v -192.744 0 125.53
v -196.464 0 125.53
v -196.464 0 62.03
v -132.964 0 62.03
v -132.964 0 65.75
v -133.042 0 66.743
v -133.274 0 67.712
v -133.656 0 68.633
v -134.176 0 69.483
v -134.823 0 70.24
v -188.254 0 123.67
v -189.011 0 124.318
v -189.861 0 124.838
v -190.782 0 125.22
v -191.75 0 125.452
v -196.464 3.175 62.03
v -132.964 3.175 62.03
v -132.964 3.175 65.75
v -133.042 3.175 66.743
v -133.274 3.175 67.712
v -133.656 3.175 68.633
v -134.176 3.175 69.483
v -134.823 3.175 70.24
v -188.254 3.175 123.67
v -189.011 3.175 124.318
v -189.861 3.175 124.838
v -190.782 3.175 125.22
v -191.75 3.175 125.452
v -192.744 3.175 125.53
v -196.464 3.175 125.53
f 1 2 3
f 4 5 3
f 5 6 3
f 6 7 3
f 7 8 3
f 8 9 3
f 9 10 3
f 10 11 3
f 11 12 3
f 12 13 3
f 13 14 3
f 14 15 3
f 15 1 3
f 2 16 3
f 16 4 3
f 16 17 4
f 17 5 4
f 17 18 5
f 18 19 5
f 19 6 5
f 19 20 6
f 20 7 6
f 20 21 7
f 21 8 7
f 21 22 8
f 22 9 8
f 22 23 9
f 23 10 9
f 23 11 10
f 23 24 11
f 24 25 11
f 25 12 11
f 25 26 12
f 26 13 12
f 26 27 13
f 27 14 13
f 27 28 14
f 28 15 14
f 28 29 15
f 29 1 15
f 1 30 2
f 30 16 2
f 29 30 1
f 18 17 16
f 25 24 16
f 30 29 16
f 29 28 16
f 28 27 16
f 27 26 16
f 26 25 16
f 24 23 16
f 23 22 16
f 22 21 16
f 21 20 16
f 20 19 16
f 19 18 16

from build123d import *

# Parameters (mm, degrees)
SKETCH2_W                      = 304.8
SKETCH2_H                      = 304.8
BOSS_EXTRUDE1_DEPTH            = 3.175
CUT_EXTRUDE1_DEPTH             = 348.408852067
CUT_EXTRUDE1_DEPTH_BACK        = 348.408852067
SKETCH3_W                      = 304.8
SKETCH3_H                      = 304.8
SKETCH3_R                      = 12.7
SKETCH3_R_2                    = 8.89
BODY_DELETE_KEEP_1_OUTLINE_R   = 12.7
BODY_DELETE_KEEP_1_OUTLINE_R_2 = 8.89
BODY_DELETE_KEEP_1_DEPTH       = 3.175


# Read off the part's stored shape, not the designer's step: Body-Delete/Keep 1
with BuildPart() as part:
    # Sketch2 → Boss-Extrude1 (new body)
    with BuildSketch(Plane(origin=(0, 0, 0), x_dir=(1, 0, 0), z_dir=(0, 1, 0))):
        with Locations((-56.763509666, -124.968808797)):
            Rectangle(SKETCH2_W, SKETCH2_H)
    extrude(amount=BOSS_EXTRUDE1_DEPTH)

    # Sketch3 → Cut-Extrude1 (cut, two sides: drawn at the far end of the back side and taken through both)
    # profile 1 of 3: a face of its own
    with BuildSketch(Plane(origin=(0, 3.175, 0), x_dir=(1, 0, 0), z_dir=(0, 1, 0)).offset(-CUT_EXTRUDE1_DEPTH_BACK)):
        with Locations((-56.763509666, -124.968808797)):
            Rectangle(SKETCH3_W, SKETCH3_H)
        Polygon((-188.253637726, -268.695366412), (-192.063637726, -268.695366412), (-192.063637726, -265.393366412), (-198.413637726, -265.393366412), (-188.253637726, -205.195366412), align=None, mode=Mode.SUBTRACT)
        Polygon((-185.713637726, -265.393366412), (-175.553637726, -205.195366412), (-175.553637726, -268.695366412), (-179.363637726, -268.695366412), (-179.363637726, -265.393366412), align=None, mode=Mode.SUBTRACT)
        Polygon((-162.853637726, -268.695366412), (-166.663637726, -268.695366412), (-166.663637726, -265.393366412), (-173.013637726, -265.393366412), (-162.853637726, -205.195366412), align=None, mode=Mode.SUBTRACT)
        Polygon((-150.153637726, -268.695366412), (-153.963637726, -268.695366412), (-153.963637726, -265.393366412), (-160.313637726, -265.393366412), (-150.153637726, -205.195366412), align=None, mode=Mode.SUBTRACT)
        Polygon((-147.613637726, -265.393366412), (-137.453637726, -205.195366412), (-137.453637726, -268.695366412), (-141.263637726, -268.695366412), (-141.263637726, -265.393366412), align=None, mode=Mode.SUBTRACT)
        Polygon((-128.563637726, -265.393366412), (-134.913637726, -265.393366412), (-124.753637726, -205.195366412), (-124.753637726, -268.695366412), (-128.563637726, -268.695366412), align=None, mode=Mode.SUBTRACT)
        Polygon((-122.213637726, -265.393366412), (-112.053637726, -205.195366412), (-112.053637726, -268.695366412), (-115.863637726, -268.695366412), (-115.863637726, -265.393366412), align=None, mode=Mode.SUBTRACT)
        Polygon((-99.353637726, -268.695366412), (-103.163637726, -268.695366412), (-103.163637726, -265.393366412), (-109.513637726, -265.393366412), (-99.353637726, -205.195366412), align=None, mode=Mode.SUBTRACT)
        Polygon((-90.463637726, -268.695366412), (-90.463637726, -265.393366412), (-96.813637726, -265.393366412), (-86.653637726, -205.195366412), (-86.653637726, -268.695366412), align=None, mode=Mode.SUBTRACT)
        Polygon((-84.113637726, -265.393366412), (-73.953637726, -205.195366412), (-73.953637726, -268.695366412), (-77.763637726, -268.695366412), (-77.763637726, -265.393366412), align=None, mode=Mode.SUBTRACT)
        Polygon((-71.413637726, -265.393366412), (-61.253637726, -205.195366412), (-61.253637726, -268.695366412), (-65.063637726, -268.695366412), (-65.063637726, -265.393366412), align=None, mode=Mode.SUBTRACT)
        with BuildLine():
            ThreePointArc((-132.963509666, -135.600090559), (-133.446874634, -138.030130355), (-134.823381605, -140.09021862))
            Line((-134.823381605, -140.09021862), (-188.253637726, -193.520474741))
            ThreePointArc((-188.253637726, -193.520474741), (-190.313725991, -194.896981712), (-192.743765787, -195.38034668))
            Line((-192.743765787, -195.38034668), (-196.463509666, -195.38034668))
            Line((-196.463509666, -195.38034668), (-196.463509666, -131.88034668))
            Line((-196.463509666, -131.88034668), (-132.963509666, -131.88034668))
            Line((-132.963509666, -131.88034668), (-132.963509666, -135.600090559))
        make_face(mode=Mode.SUBTRACT)
        with BuildLine():
            Line((-126.613509666, -195.38034668), (-126.613509666, -131.88034668))
            Line((-126.613509666, -131.88034668), (-63.113509666, -131.88034668))
            Line((-63.113509666, -131.88034668), (-63.113509666, -135.600090559))
            ThreePointArc((-63.113509666, -135.600090559), (-63.596874634, -138.030130355), (-64.973381605, -140.09021862))
            Line((-64.973381605, -140.09021862), (-118.403637726, -193.520474741))
            ThreePointArc((-118.403637726, -193.520474741), (-120.463725991, -194.896981712), (-122.893765787, -195.38034668))
            Line((-122.893765787, -195.38034668), (-126.613509666, -195.38034668))
        make_face(mode=Mode.SUBTRACT)
        Polygon((-52.363637726, -268.695366412), (-52.363637726, -265.393366412), (-58.713637726, -265.393366412), (-48.553637726, -205.195366412), (-48.553637726, -268.695366412), align=None, mode=Mode.SUBTRACT)
        Polygon((-35.853637726, -205.195366412), (-35.853637726, -268.695366412), (-39.663637726, -268.695366412), (-39.663637726, -265.393366412), (-46.013637726, -265.393366412), align=None, mode=Mode.SUBTRACT)
        Polygon((-23.153637726, -205.195366412), (-23.153637726, -268.695366412), (-26.963637726, -268.695366412), (-26.963637726, -265.393366412), (-33.313637726, -265.393366412), align=None, mode=Mode.SUBTRACT)
        Polygon((-20.613637726, -265.393366412), (-10.453637726, -205.195366412), (-10.453637726, -268.695366412), (-14.263637726, -268.695366412), (-14.263637726, -265.393366412), align=None, mode=Mode.SUBTRACT)
        Polygon((-1.563637726, -268.695366412), (-1.563637726, -265.393366412), (-7.913637726, -265.393366412), (2.246362274, -205.195366412), (2.246362274, -268.695366412), align=None, mode=Mode.SUBTRACT)
        with BuildLine():
            Line((-53.043765787, -195.38034668), (-56.763509666, -195.38034668))
            Line((-56.763509666, -195.38034668), (-56.763509666, -131.88034668))
            Line((-56.763509666, -131.88034668), (6.736490334, -131.88034668))
            Line((6.736490334, -131.88034668), (6.736490334, -135.600090559))
            ThreePointArc((6.736490334, -135.600090559), (6.253125366, -138.030130355), (4.876618395, -140.09021862))
            Line((4.876618395, -140.09021862), (-48.553637726, -193.520474741))
            ThreePointArc((-48.553637726, -193.520474741), (-50.613725991, -194.896981712), (-53.043765787, -195.38034668))
        make_face(mode=Mode.SUBTRACT)
        with BuildLine():
            Line((13.086490334, -131.88034668), (76.586490334, -131.88034668))
            Line((76.586490334, -131.88034668), (76.586490334, -135.600090559))
            ThreePointArc((76.586490334, -135.600090559), (76.103125366, -138.030130355), (74.726618395, -140.09021862))
            Line((74.726618395, -140.09021862), (21.296362274, -193.520474741))
            ThreePointArc((21.296362274, -193.520474741), (19.236274009, -194.896981712), (16.806234213, -195.38034668))
            Line((16.806234213, -195.38034668), (13.086490334, -195.38034668))
            Line((13.086490334, -195.38034668), (13.086490334, -131.88034668))
        make_face(mode=Mode.SUBTRACT)
        with BuildLine():
            Line((-196.463509666, -125.53034668), (-196.463509666, -62.03034668))
            Line((-196.463509666, -62.03034668), (-132.963509666, -62.03034668))
            Line((-132.963509666, -62.03034668), (-132.963509666, -65.750090559))
            ThreePointArc((-132.963509666, -65.750090559), (-133.10773728, -67.095783354), (-133.533868437, -68.38034668))
            ThreePointArc((-133.533868437, -68.38034668), (-134.095097913, -69.368194866), (-134.823381605, -70.24021862))
            Line((-134.823381605, -70.24021862), (-188.253637726, -123.670474741))
            ThreePointArc((-188.253637726, -123.670474741), (-189.12566148, -124.398758433), (-190.113509666, -124.959987909))
            ThreePointArc((-190.113509666, -124.959987909), (-191.398072992, -125.386119066), (-192.743765787, -125.53034668))
            Line((-192.743765787, -125.53034668), (-196.463509666, -125.53034668))
        make_face(mode=Mode.SUBTRACT)
        with BuildLine():
            Line((-122.893765787, -125.53034668), (-126.613509666, -125.53034668))
            Line((-126.613509666, -125.53034668), (-126.613509666, -62.03034668))
            Line((-126.613509666, -62.03034668), (-63.113509666, -62.03034668))
            Line((-63.113509666, -62.03034668), (-63.113509666, -65.750090559))
            ThreePointArc((-63.113509666, -65.750090559), (-63.596874634, -68.180130355), (-64.973381605, -70.24021862))
            Line((-64.973381605, -70.24021862), (-118.403637726, -123.670474741))
            ThreePointArc((-118.403637726, -123.670474741), (-120.463725991, -125.046981712), (-122.893765787, -125.53034668))
        make_face(mode=Mode.SUBTRACT)
        Polygon((-196.463509666, -48.768808797), (-196.463509666, 14.731191203), (-192.653509666, 14.731191203), (-192.653509666, 11.429191203), (-186.303509666, 11.429191203), align=None, mode=Mode.SUBTRACT)
        Polygon((-183.763509666, 14.731191203), (-179.953509666, 14.731191203), (-179.953509666, 11.429191203), (-173.603509666, 11.429191203), (-183.763509666, -48.768808797), align=None, mode=Mode.SUBTRACT)
        Polygon((-171.063509666, 14.731191203), (-167.253509666, 14.731191203), (-167.253509666, 11.429191203), (-160.903509666, 11.429191203), (-171.063509666, -48.768808797), align=None, mode=Mode.SUBTRACT)
        Polygon((-158.363509666, 14.731191203), (-154.553509666, 14.731191203), (-154.553509666, 11.429191203), (-148.203509666, 11.429191203), (-158.363509666, -48.768808797), align=None, mode=Mode.SUBTRACT)
        Polygon((-145.663509666, 14.731191203), (-141.853509666, 14.731191203), (-141.853509666, 11.429191203), (-135.503509666, 11.429191203), (-145.663509666, -48.768808797), align=None, mode=Mode.SUBTRACT)
        Polygon((-132.963509666, 14.731191203), (-129.153509666, 14.731191203), (-129.153509666, 11.429191203), (-122.803509666, 11.429191203), (-132.963509666, -48.768808797), align=None, mode=Mode.SUBTRACT)
        Polygon((-120.263509666, 14.731191203), (-116.453509666, 14.731191203), (-116.453509666, 11.429191203), (-110.103509666, 11.429191203), (-120.263509666, -48.768808797), align=None, mode=Mode.SUBTRACT)
        Polygon((-107.563509666, 14.731191203), (-103.753509666, 14.731191203), (-103.753509666, 11.429191203), (-97.403509666, 11.429191203), (-107.563509666, -48.768808797), align=None, mode=Mode.SUBTRACT)
        Polygon((-94.863509666, 14.731191203), (-91.053509666, 14.731191203), (-91.053509666, 11.429191203), (-84.703509666, 11.429191203), (-94.863509666, -48.768808797), align=None, mode=Mode.SUBTRACT)
        Polygon((-82.163509666, 14.731191203), (-78.353509666, 14.731191203), (-78.353509666, 11.429191203), (-72.003509666, 11.429191203), (-82.163509666, -48.768808797), align=None, mode=Mode.SUBTRACT)
        Polygon((-69.463509666, 14.731191203), (-65.653509666, 14.731191203), (-65.653509666, 11.429191203), (-59.303509666, 11.429191203), (-69.463509666, -48.768808797), align=None, mode=Mode.SUBTRACT)
        with BuildLine():
            Line((-53.043765787, -125.53034668), (-56.763509666, -125.53034668))
            Line((-56.763509666, -125.53034668), (-56.763509666, -62.03034668))
            Line((-56.763509666, -62.03034668), (6.736490334, -62.03034668))
            Line((6.736490334, -62.03034668), (6.736490334, -65.750090559))
            ThreePointArc((6.736490334, -65.750090559), (6.253125366, -68.180130355), (4.876618395, -70.24021862))
            Line((4.876618395, -70.24021862), (-48.553637726, -123.670474741))
            ThreePointArc((-48.553637726, -123.670474741), (-50.613725991, -125.046981712), (-53.043765787, -125.53034668))
        make_face(mode=Mode.SUBTRACT)
        with BuildLine():
            Line((16.806234213, -125.53034668), (13.086490334, -125.53034668))
            Line((13.086490334, -125.53034668), (13.086490334, -62.03034668))
            Line((13.086490334, -62.03034668), (76.586490334, -62.03034668))
            Line((76.586490334, -62.03034668), (76.586490334, -65.750090559))
            ThreePointArc((76.586490334, -65.750090559), (76.103125366, -68.180130355), (74.726618395, -70.24021862))
            Line((74.726618395, -70.24021862), (21.296362274, -123.670474741))
            ThreePointArc((21.296362274, -123.670474741), (19.236274009, -125.046981712), (16.806234213, -125.53034668))
        make_face(mode=Mode.SUBTRACT)
        Polygon((-56.763509666, 14.731191203), (-52.953509666, 14.731191203), (-52.953509666, 11.429191203), (-46.603509666, 11.429191203), (-56.763509666, -48.768808797), align=None, mode=Mode.SUBTRACT)
        Polygon((-44.063509666, 14.731191203), (-40.253509666, 14.731191203), (-40.253509666, 11.429191203), (-33.903509666, 11.429191203), (-44.063509666, -48.768808797), align=None, mode=Mode.SUBTRACT)
        Polygon((-31.363509666, 14.731191203), (-27.553509666, 14.731191203), (-27.553509666, 11.429191203), (-21.203509666, 11.429191203), (-31.363509666, -48.768808797), align=None, mode=Mode.SUBTRACT)
        Polygon((-18.663509666, 14.731191203), (-14.853509666, 14.731191203), (-14.853509666, 11.429191203), (-8.503509666, 11.429191203), (-18.663509666, -48.768808797), align=None, mode=Mode.SUBTRACT)
        Polygon((-5.963509666, 14.731191203), (-2.153509666, 14.731191203), (-2.153509666, 11.429191203), (4.196490334, 11.429191203), (-5.963509666, -48.768808797), align=None, mode=Mode.SUBTRACT)
        Polygon((57.536490334, -48.768808797), (57.536490334, -52.070808797), (32.136490334, -52.070808797), (32.136490334, -48.768808797), (28.834490334, -48.768808797), (28.834490334, -23.368808797), (32.136490334, -23.368808797), (32.136490334, -20.066808797), (57.536490334, -20.066808797), (57.536490334, -23.368808797), (60.838490334, -23.368808797), (60.838490334, -48.768808797), align=None, mode=Mode.SUBTRACT)
        Polygon((28.834490334, 14.731191203), (32.136490334, 14.731191203), (32.136490334, 18.033191203), (57.536490334, 18.033191203), (57.536490334, 14.731191203), (60.838490334, 14.731191203), (60.838490334, -10.668808797), (57.536490334, -10.668808797), (57.536490334, -13.970808797), (32.136490334, -13.970808797), (32.136490334, -10.668808797), (28.834490334, -10.668808797), align=None, mode=Mode.SUBTRACT)
    # profile 2 of 3: a face of its own
    with BuildSketch(Plane(origin=(0, 3.175, 0), x_dir=(1, 0, 0), z_dir=(0, 1, 0)).offset(-CUT_EXTRUDE1_DEPTH_BACK)):
        with Locations(Location((44.836490334, -36.068808797, 0), (0, 0, 270))):
            Circle(SKETCH3_R)
    # profile 3 of 3: a face of its own
    with BuildSketch(Plane(origin=(0, 3.175, 0), x_dir=(1, 0, 0), z_dir=(0, 1, 0)).offset(-CUT_EXTRUDE1_DEPTH_BACK)):
        with Locations(Location((44.836490334, 2.031191203, 0), (0, 0, 270))):
            Circle(SKETCH3_R_2)
    extrude(amount=CUT_EXTRUDE1_DEPTH + CUT_EXTRUDE1_DEPTH_BACK, mode=Mode.SUBTRACT)

    # Body-Delete/Keep 1 outline → Body-Delete/Keep 1 (cut)
    # profile 1 of 41: a face of its own
    with BuildSketch(Plane(origin=(0, 0, 0), x_dir=(1, 0, 0), z_dir=(0, 1, 0))):
        with BuildLine():
            Line((-126.613509666, -62.03034668), (-126.613509666, -125.53034668))
            Line((-126.613509666, -125.53034668), (-122.893765787, -125.53034668))
            ThreePointArc((-122.893765787, -125.53034668), (-120.463725991, -125.046981712), (-118.403637726, -123.670474741))
            Line((-118.403637726, -123.670474741), (-64.973381605, -70.24021862))
            ThreePointArc((-64.973381605, -70.24021862), (-63.596874634, -68.180130355), (-63.113509666, -65.750090559))
            Line((-63.113509666, -65.750090559), (-63.113509666, -62.03034668))
            Line((-63.113509666, -62.03034668), (-126.613509666, -62.03034668))
        make_face()
    # profile 2 of 41: a face of its own
    with BuildSketch(Plane(origin=(0, 0, 0), x_dir=(1, 0, 0), z_dir=(0, 1, 0))):
        with BuildLine():
            Line((-56.763509666, -62.03034668), (-56.763509666, -125.53034668))
            Line((-56.763509666, -125.53034668), (-53.043765787, -125.53034668))
            ThreePointArc((-53.043765787, -125.53034668), (-50.613725991, -125.046981712), (-48.553637726, -123.670474741))
            Line((-48.553637726, -123.670474741), (4.876618395, -70.24021862))
            ThreePointArc((4.876618395, -70.24021862), (6.253125366, -68.180130355), (6.736490334, -65.750090559))
            Line((6.736490334, -65.750090559), (6.736490334, -62.03034668))
            Line((6.736490334, -62.03034668), (-56.763509666, -62.03034668))
        make_face()
    # profile 3 of 41: a face of its own
    with BuildSketch(Plane(origin=(0, 0, 0), x_dir=(1, 0, 0), z_dir=(0, 1, 0))):
        with BuildLine():
            Line((13.086490334, -62.03034668), (13.086490334, -125.53034668))
            Line((13.086490334, -125.53034668), (16.806234213, -125.53034668))
            ThreePointArc((16.806234213, -125.53034668), (19.236274009, -125.046981712), (21.296362274, -123.670474741))
            Line((21.296362274, -123.670474741), (74.726618395, -70.24021862))
            ThreePointArc((74.726618395, -70.24021862), (76.103125366, -68.180130355), (76.586490334, -65.750090559))
            Line((76.586490334, -65.750090559), (76.586490334, -62.03034668))
            Line((76.586490334, -62.03034668), (13.086490334, -62.03034668))
        make_face()
    # profile 4 of 41: a face of its own
    with BuildSketch(Plane(origin=(0, 0, 0), x_dir=(1, 0, 0), z_dir=(0, 1, 0))):
        Polygon((-192.653509666, 14.731191203), (-196.463509666, 14.731191203), (-196.463509666, -48.768808797), (-186.303509666, 11.429191203), (-192.653509666, 11.429191203), align=None)
    # profile 5 of 41: a face of its own
    with BuildSketch(Plane(origin=(0, 0, 0), x_dir=(1, 0, 0), z_dir=(0, 1, 0))):
        with BuildLine():
            Line((-132.963509666, -131.88034668), (-196.463509666, -131.88034668))
            Line((-196.463509666, -131.88034668), (-196.463509666, -195.38034668))
            Line((-196.463509666, -195.38034668), (-192.743765787, -195.38034668))
            ThreePointArc((-192.743765787, -195.38034668), (-190.313725991, -194.896981712), (-188.253637726, -193.520474741))
            Line((-188.253637726, -193.520474741), (-134.823381605, -140.09021862))
            ThreePointArc((-134.823381605, -140.09021862), (-133.446874634, -138.030130355), (-132.963509666, -135.600090559))
            Line((-132.963509666, -135.600090559), (-132.963509666, -131.88034668))
        make_face()
    # profile 6 of 41: a face of its own
    with BuildSketch(Plane(origin=(0, 0, 0), x_dir=(1, 0, 0), z_dir=(0, 1, 0))):
        Polygon((32.136490334, -20.066808797), (32.136490334, -23.368808797), (28.834490334, -23.368808797), (28.834490334, -48.768808797), (32.136490334, -48.768808797), (32.136490334, -52.070808797), (57.536490334, -52.070808797), (57.536490334, -48.768808797), (60.838490334, -48.768808797), (60.838490334, -23.368808797), (57.536490334, -23.368808797), (57.536490334, -20.066808797), align=None)
        with Locations((44.836490334, -36.068808797)):
            Circle(BODY_DELETE_KEEP_1_OUTLINE_R, mode=Mode.SUBTRACT)
    # profile 7 of 41: a face of its own
    with BuildSketch(Plane(origin=(0, 0, 0), x_dir=(1, 0, 0), z_dir=(0, 1, 0))):
        Polygon((28.834490334, -10.668808797), (32.136490334, -10.668808797), (32.136490334, -13.970808797), (57.536490334, -13.970808797), (57.536490334, -10.668808797), (60.838490334, -10.668808797), (60.838490334, 14.731191203), (57.536490334, 14.731191203), (57.536490334, 18.033191203), (32.136490334, 18.033191203), (32.136490334, 14.731191203), (28.834490334, 14.731191203), align=None)
        with Locations((44.836490334, 2.031191203)):
            Circle(BODY_DELETE_KEEP_1_OUTLINE_R_2, mode=Mode.SUBTRACT)
    # profile 8 of 41: a face of its own
    with BuildSketch(Plane(origin=(0, 0, 0), x_dir=(1, 0, 0), z_dir=(0, 1, 0))):
        Polygon((-2.153509666, 11.429191203), (-2.153509666, 14.731191203), (-5.963509666, 14.731191203), (-5.963509666, -48.768808797), (4.196490334, 11.429191203), align=None)
    # profile 9 of 41: a face of its own
    with BuildSketch(Plane(origin=(0, 0, 0), x_dir=(1, 0, 0), z_dir=(0, 1, 0))):
        Polygon((-27.553509666, 11.429191203), (-27.553509666, 14.731191203), (-31.363509666, 14.731191203), (-31.363509666, -48.768808797), (-21.203509666, 11.429191203), align=None)
    # profile 10 of 41: a face of its own
    with BuildSketch(Plane(origin=(0, 0, 0), x_dir=(1, 0, 0), z_dir=(0, 1, 0))):
        Polygon((-14.853509666, 11.429191203), (-14.853509666, 14.731191203), (-18.663509666, 14.731191203), (-18.663509666, -48.768808797), (-8.503509666, 11.429191203), align=None)
    # profile 11 of 41: a face of its own
    with BuildSketch(Plane(origin=(0, 0, 0), x_dir=(1, 0, 0), z_dir=(0, 1, 0))):
        Polygon((-65.653509666, 11.429191203), (-65.653509666, 14.731191203), (-69.463509666, 14.731191203), (-69.463509666, -48.768808797), (-59.303509666, 11.429191203), align=None)
    # profile 12 of 41: a face of its own
    with BuildSketch(Plane(origin=(0, 0, 0), x_dir=(1, 0, 0), z_dir=(0, 1, 0))):
        Polygon((-91.053509666, 11.429191203), (-91.053509666, 14.731191203), (-94.863509666, 14.731191203), (-94.863509666, -48.768808797), (-84.703509666, 11.429191203), align=None)
    # profile 13 of 41: a face of its own
    with BuildSketch(Plane(origin=(0, 0, 0), x_dir=(1, 0, 0), z_dir=(0, 1, 0))):
        Polygon((-40.253509666, 11.429191203), (-40.253509666, 14.731191203), (-44.063509666, 14.731191203), (-44.063509666, -48.768808797), (-33.903509666, 11.429191203), align=None)
    # profile 14 of 41: a face of its own
    with BuildSketch(Plane(origin=(0, 0, 0), x_dir=(1, 0, 0), z_dir=(0, 1, 0))):
        Polygon((-52.953509666, 11.429191203), (-52.953509666, 14.731191203), (-56.763509666, 14.731191203), (-56.763509666, -48.768808797), (-46.603509666, 11.429191203), align=None)
    # profile 15 of 41: a face of its own
    with BuildSketch(Plane(origin=(0, 0, 0), x_dir=(1, 0, 0), z_dir=(0, 1, 0))):
        Polygon((-141.853509666, 11.429191203), (-141.853509666, 14.731191203), (-145.663509666, 14.731191203), (-145.663509666, -48.768808797), (-135.503509666, 11.429191203), align=None)
    # profile 16 of 41: a face of its own
    with BuildSketch(Plane(origin=(0, 0, 0), x_dir=(1, 0, 0), z_dir=(0, 1, 0))):
        Polygon((-154.553509666, 11.429191203), (-154.553509666, 14.731191203), (-158.363509666, 14.731191203), (-158.363509666, -48.768808797), (-148.203509666, 11.429191203), align=None)
    # profile 17 of 41: a face of its own
    with BuildSketch(Plane(origin=(0, 0, 0), x_dir=(1, 0, 0), z_dir=(0, 1, 0))):
        Polygon((-167.253509666, 11.429191203), (-167.253509666, 14.731191203), (-171.063509666, 14.731191203), (-171.063509666, -48.768808797), (-160.903509666, 11.429191203), align=None)
    # profile 18 of 41: a face of its own
    with BuildSketch(Plane(origin=(0, 0, 0), x_dir=(1, 0, 0), z_dir=(0, 1, 0))):
        Polygon((-78.353509666, 11.429191203), (-78.353509666, 14.731191203), (-82.163509666, 14.731191203), (-82.163509666, -48.768808797), (-72.003509666, 11.429191203), align=None)
    # profile 19 of 41: a face of its own
    with BuildSketch(Plane(origin=(0, 0, 0), x_dir=(1, 0, 0), z_dir=(0, 1, 0))):
        Polygon((-179.953509666, 11.429191203), (-179.953509666, 14.731191203), (-183.763509666, 14.731191203), (-183.763509666, -48.768808797), (-173.603509666, 11.429191203), align=None)
    # profile 20 of 41: a face of its own
    with BuildSketch(Plane(origin=(0, 0, 0), x_dir=(1, 0, 0), z_dir=(0, 1, 0))):
        Polygon((-103.753509666, 11.429191203), (-103.753509666, 14.731191203), (-107.563509666, 14.731191203), (-107.563509666, -48.768808797), (-97.403509666, 11.429191203), align=None)
    # profile 21 of 41: a face of its own
    with BuildSketch(Plane(origin=(0, 0, 0), x_dir=(1, 0, 0), z_dir=(0, 1, 0))):
        Polygon((-116.453509666, 11.429191203), (-116.453509666, 14.731191203), (-120.263509666, 14.731191203), (-120.263509666, -48.768808797), (-110.103509666, 11.429191203), align=None)
    # profile 22 of 41: a face of its own
    with BuildSketch(Plane(origin=(0, 0, 0), x_dir=(1, 0, 0), z_dir=(0, 1, 0))):
        Polygon((-129.153509666, 11.429191203), (-129.153509666, 14.731191203), (-132.963509666, 14.731191203), (-132.963509666, -48.768808797), (-122.803509666, 11.429191203), align=None)
    # profile 23 of 41: a face of its own
    with BuildSketch(Plane(origin=(0, 0, 0), x_dir=(1, 0, 0), z_dir=(0, 1, 0))):
        Polygon((-71.413637726, -265.393366412), (-65.063637726, -265.393366412), (-65.063637726, -268.695366412), (-61.253637726, -268.695366412), (-61.253637726, -205.195366412), align=None)
    # profile 24 of 41: a face of its own
    with BuildSketch(Plane(origin=(0, 0, 0), x_dir=(1, 0, 0), z_dir=(0, 1, 0))):
        Polygon((-124.753637726, -205.195366412), (-134.913637726, -265.393366412), (-128.563637726, -265.393366412), (-128.563637726, -268.695366412), (-124.753637726, -268.695366412), align=None)
    # profile 25 of 41: a face of its own
    with BuildSketch(Plane(origin=(0, 0, 0), x_dir=(1, 0, 0), z_dir=(0, 1, 0))):
        Polygon((-23.153637726, -205.195366412), (-33.313637726, -265.393366412), (-26.963637726, -265.393366412), (-26.963637726, -268.695366412), (-23.153637726, -268.695366412), align=None)
    # profile 26 of 41: a face of its own
    with BuildSketch(Plane(origin=(0, 0, 0), x_dir=(1, 0, 0), z_dir=(0, 1, 0))):
        Polygon((-35.853637726, -205.195366412), (-46.013637726, -265.393366412), (-39.663637726, -265.393366412), (-39.663637726, -268.695366412), (-35.853637726, -268.695366412), align=None)
    # profile 27 of 41: a face of its own
    with BuildSketch(Plane(origin=(0, 0, 0), x_dir=(1, 0, 0), z_dir=(0, 1, 0))):
        Polygon((-73.953637726, -205.195366412), (-84.113637726, -265.393366412), (-77.763637726, -265.393366412), (-77.763637726, -268.695366412), (-73.953637726, -268.695366412), align=None)
    # profile 28 of 41: a face of its own
    with BuildSketch(Plane(origin=(0, 0, 0), x_dir=(1, 0, 0), z_dir=(0, 1, 0))):
        Polygon((-162.853637726, -205.195366412), (-173.013637726, -265.393366412), (-166.663637726, -265.393366412), (-166.663637726, -268.695366412), (-162.853637726, -268.695366412), align=None)
    # profile 29 of 41: a face of its own
    with BuildSketch(Plane(origin=(0, 0, 0), x_dir=(1, 0, 0), z_dir=(0, 1, 0))):
        Polygon((-188.253637726, -205.195366412), (-198.413637726, -265.393366412), (-192.063637726, -265.393366412), (-192.063637726, -268.695366412), (-188.253637726, -268.695366412), align=None)
    # profile 30 of 41: a face of its own
    with BuildSketch(Plane(origin=(0, 0, 0), x_dir=(1, 0, 0), z_dir=(0, 1, 0))):
        Polygon((-175.553637726, -205.195366412), (-185.713637726, -265.393366412), (-179.363637726, -265.393366412), (-179.363637726, -268.695366412), (-175.553637726, -268.695366412), align=None)
    # profile 31 of 41: a face of its own
    with BuildSketch(Plane(origin=(0, 0, 0), x_dir=(1, 0, 0), z_dir=(0, 1, 0))):
        Polygon((-150.153637726, -205.195366412), (-160.313637726, -265.393366412), (-153.963637726, -265.393366412), (-153.963637726, -268.695366412), (-150.153637726, -268.695366412), align=None)
    # profile 32 of 41: a face of its own
    with BuildSketch(Plane(origin=(0, 0, 0), x_dir=(1, 0, 0), z_dir=(0, 1, 0))):
        Polygon((-86.653637726, -205.195366412), (-96.813637726, -265.393366412), (-90.463637726, -265.393366412), (-90.463637726, -268.695366412), (-86.653637726, -268.695366412), align=None)
    # profile 33 of 41: a face of its own
    with BuildSketch(Plane(origin=(0, 0, 0), x_dir=(1, 0, 0), z_dir=(0, 1, 0))):
        Polygon((2.246362274, -205.195366412), (-7.913637726, -265.393366412), (-1.563637726, -265.393366412), (-1.563637726, -268.695366412), (2.246362274, -268.695366412), align=None)
    # profile 34 of 41: a face of its own
    with BuildSketch(Plane(origin=(0, 0, 0), x_dir=(1, 0, 0), z_dir=(0, 1, 0))):
        Polygon((-137.453637726, -205.195366412), (-147.613637726, -265.393366412), (-141.263637726, -265.393366412), (-141.263637726, -268.695366412), (-137.453637726, -268.695366412), align=None)
    # profile 35 of 41: a face of its own
    with BuildSketch(Plane(origin=(0, 0, 0), x_dir=(1, 0, 0), z_dir=(0, 1, 0))):
        Polygon((-48.553637726, -205.195366412), (-58.713637726, -265.393366412), (-52.363637726, -265.393366412), (-52.363637726, -268.695366412), (-48.553637726, -268.695366412), align=None)
    # profile 36 of 41: a face of its own
    with BuildSketch(Plane(origin=(0, 0, 0), x_dir=(1, 0, 0), z_dir=(0, 1, 0))):
        Polygon((-10.453637726, -205.195366412), (-20.613637726, -265.393366412), (-14.263637726, -265.393366412), (-14.263637726, -268.695366412), (-10.453637726, -268.695366412), align=None)
    # profile 37 of 41: a face of its own
    with BuildSketch(Plane(origin=(0, 0, 0), x_dir=(1, 0, 0), z_dir=(0, 1, 0))):
        Polygon((-99.353637726, -205.195366412), (-109.513637726, -265.393366412), (-103.163637726, -265.393366412), (-103.163637726, -268.695366412), (-99.353637726, -268.695366412), align=None)
    # profile 38 of 41: a face of its own
    with BuildSketch(Plane(origin=(0, 0, 0), x_dir=(1, 0, 0), z_dir=(0, 1, 0))):
        Polygon((-112.053637726, -205.195366412), (-122.213637726, -265.393366412), (-115.863637726, -265.393366412), (-115.863637726, -268.695366412), (-112.053637726, -268.695366412), align=None)
    # profile 39 of 41: a face of its own
    with BuildSketch(Plane(origin=(0, 0, 0), x_dir=(1, 0, 0), z_dir=(0, 1, 0))):
        with BuildLine():
            Line((6.736490334, -131.88034668), (-56.763509666, -131.88034668))
            Line((-56.763509666, -131.88034668), (-56.763509666, -195.38034668))
            Line((-56.763509666, -195.38034668), (-53.043765787, -195.38034668))
            ThreePointArc((-53.043765787, -195.38034668), (-50.613725991, -194.896981712), (-48.553637726, -193.520474741))
            Line((-48.553637726, -193.520474741), (4.876618395, -140.09021862))
            ThreePointArc((4.876618395, -140.09021862), (6.253125366, -138.030130355), (6.736490334, -135.600090559))
            Line((6.736490334, -135.600090559), (6.736490334, -131.88034668))
        make_face()
    # profile 40 of 41: a face of its own
    with BuildSketch(Plane(origin=(0, 0, 0), x_dir=(1, 0, 0), z_dir=(0, 1, 0))):
        with BuildLine():
            Line((21.296362274, -193.520474741), (74.726618395, -140.09021862))
            ThreePointArc((74.726618395, -140.09021862), (76.103125366, -138.030130355), (76.586490334, -135.600090559))
            Line((76.586490334, -135.600090559), (76.586490334, -131.88034668))
            Line((76.586490334, -131.88034668), (13.086490334, -131.88034668))
            Line((13.086490334, -131.88034668), (13.086490334, -195.38034668))
            Line((13.086490334, -195.38034668), (16.806234213, -195.38034668))
            ThreePointArc((16.806234213, -195.38034668), (19.236274009, -194.896981712), (21.296362274, -193.520474741))
        make_face()
    # profile 41 of 41: a face of its own
    with BuildSketch(Plane(origin=(0, 0, 0), x_dir=(1, 0, 0), z_dir=(0, 1, 0))):
        with BuildLine():
            Line((-126.613509666, -131.88034668), (-126.613509666, -195.38034668))
            Line((-126.613509666, -195.38034668), (-122.893765787, -195.38034668))
            ThreePointArc((-122.893765787, -195.38034668), (-120.463725991, -194.896981712), (-118.403637726, -193.520474741))
            Line((-118.403637726, -193.520474741), (-64.973381605, -140.09021862))
            ThreePointArc((-64.973381605, -140.09021862), (-63.596874634, -138.030130355), (-63.113509666, -135.600090559))
            Line((-63.113509666, -135.600090559), (-63.113509666, -131.88034668))
            Line((-63.113509666, -131.88034668), (-126.613509666, -131.88034668))
        make_face()
    extrude(amount=BODY_DELETE_KEEP_1_DEPTH, mode=Mode.SUBTRACT)


solid = part.part
